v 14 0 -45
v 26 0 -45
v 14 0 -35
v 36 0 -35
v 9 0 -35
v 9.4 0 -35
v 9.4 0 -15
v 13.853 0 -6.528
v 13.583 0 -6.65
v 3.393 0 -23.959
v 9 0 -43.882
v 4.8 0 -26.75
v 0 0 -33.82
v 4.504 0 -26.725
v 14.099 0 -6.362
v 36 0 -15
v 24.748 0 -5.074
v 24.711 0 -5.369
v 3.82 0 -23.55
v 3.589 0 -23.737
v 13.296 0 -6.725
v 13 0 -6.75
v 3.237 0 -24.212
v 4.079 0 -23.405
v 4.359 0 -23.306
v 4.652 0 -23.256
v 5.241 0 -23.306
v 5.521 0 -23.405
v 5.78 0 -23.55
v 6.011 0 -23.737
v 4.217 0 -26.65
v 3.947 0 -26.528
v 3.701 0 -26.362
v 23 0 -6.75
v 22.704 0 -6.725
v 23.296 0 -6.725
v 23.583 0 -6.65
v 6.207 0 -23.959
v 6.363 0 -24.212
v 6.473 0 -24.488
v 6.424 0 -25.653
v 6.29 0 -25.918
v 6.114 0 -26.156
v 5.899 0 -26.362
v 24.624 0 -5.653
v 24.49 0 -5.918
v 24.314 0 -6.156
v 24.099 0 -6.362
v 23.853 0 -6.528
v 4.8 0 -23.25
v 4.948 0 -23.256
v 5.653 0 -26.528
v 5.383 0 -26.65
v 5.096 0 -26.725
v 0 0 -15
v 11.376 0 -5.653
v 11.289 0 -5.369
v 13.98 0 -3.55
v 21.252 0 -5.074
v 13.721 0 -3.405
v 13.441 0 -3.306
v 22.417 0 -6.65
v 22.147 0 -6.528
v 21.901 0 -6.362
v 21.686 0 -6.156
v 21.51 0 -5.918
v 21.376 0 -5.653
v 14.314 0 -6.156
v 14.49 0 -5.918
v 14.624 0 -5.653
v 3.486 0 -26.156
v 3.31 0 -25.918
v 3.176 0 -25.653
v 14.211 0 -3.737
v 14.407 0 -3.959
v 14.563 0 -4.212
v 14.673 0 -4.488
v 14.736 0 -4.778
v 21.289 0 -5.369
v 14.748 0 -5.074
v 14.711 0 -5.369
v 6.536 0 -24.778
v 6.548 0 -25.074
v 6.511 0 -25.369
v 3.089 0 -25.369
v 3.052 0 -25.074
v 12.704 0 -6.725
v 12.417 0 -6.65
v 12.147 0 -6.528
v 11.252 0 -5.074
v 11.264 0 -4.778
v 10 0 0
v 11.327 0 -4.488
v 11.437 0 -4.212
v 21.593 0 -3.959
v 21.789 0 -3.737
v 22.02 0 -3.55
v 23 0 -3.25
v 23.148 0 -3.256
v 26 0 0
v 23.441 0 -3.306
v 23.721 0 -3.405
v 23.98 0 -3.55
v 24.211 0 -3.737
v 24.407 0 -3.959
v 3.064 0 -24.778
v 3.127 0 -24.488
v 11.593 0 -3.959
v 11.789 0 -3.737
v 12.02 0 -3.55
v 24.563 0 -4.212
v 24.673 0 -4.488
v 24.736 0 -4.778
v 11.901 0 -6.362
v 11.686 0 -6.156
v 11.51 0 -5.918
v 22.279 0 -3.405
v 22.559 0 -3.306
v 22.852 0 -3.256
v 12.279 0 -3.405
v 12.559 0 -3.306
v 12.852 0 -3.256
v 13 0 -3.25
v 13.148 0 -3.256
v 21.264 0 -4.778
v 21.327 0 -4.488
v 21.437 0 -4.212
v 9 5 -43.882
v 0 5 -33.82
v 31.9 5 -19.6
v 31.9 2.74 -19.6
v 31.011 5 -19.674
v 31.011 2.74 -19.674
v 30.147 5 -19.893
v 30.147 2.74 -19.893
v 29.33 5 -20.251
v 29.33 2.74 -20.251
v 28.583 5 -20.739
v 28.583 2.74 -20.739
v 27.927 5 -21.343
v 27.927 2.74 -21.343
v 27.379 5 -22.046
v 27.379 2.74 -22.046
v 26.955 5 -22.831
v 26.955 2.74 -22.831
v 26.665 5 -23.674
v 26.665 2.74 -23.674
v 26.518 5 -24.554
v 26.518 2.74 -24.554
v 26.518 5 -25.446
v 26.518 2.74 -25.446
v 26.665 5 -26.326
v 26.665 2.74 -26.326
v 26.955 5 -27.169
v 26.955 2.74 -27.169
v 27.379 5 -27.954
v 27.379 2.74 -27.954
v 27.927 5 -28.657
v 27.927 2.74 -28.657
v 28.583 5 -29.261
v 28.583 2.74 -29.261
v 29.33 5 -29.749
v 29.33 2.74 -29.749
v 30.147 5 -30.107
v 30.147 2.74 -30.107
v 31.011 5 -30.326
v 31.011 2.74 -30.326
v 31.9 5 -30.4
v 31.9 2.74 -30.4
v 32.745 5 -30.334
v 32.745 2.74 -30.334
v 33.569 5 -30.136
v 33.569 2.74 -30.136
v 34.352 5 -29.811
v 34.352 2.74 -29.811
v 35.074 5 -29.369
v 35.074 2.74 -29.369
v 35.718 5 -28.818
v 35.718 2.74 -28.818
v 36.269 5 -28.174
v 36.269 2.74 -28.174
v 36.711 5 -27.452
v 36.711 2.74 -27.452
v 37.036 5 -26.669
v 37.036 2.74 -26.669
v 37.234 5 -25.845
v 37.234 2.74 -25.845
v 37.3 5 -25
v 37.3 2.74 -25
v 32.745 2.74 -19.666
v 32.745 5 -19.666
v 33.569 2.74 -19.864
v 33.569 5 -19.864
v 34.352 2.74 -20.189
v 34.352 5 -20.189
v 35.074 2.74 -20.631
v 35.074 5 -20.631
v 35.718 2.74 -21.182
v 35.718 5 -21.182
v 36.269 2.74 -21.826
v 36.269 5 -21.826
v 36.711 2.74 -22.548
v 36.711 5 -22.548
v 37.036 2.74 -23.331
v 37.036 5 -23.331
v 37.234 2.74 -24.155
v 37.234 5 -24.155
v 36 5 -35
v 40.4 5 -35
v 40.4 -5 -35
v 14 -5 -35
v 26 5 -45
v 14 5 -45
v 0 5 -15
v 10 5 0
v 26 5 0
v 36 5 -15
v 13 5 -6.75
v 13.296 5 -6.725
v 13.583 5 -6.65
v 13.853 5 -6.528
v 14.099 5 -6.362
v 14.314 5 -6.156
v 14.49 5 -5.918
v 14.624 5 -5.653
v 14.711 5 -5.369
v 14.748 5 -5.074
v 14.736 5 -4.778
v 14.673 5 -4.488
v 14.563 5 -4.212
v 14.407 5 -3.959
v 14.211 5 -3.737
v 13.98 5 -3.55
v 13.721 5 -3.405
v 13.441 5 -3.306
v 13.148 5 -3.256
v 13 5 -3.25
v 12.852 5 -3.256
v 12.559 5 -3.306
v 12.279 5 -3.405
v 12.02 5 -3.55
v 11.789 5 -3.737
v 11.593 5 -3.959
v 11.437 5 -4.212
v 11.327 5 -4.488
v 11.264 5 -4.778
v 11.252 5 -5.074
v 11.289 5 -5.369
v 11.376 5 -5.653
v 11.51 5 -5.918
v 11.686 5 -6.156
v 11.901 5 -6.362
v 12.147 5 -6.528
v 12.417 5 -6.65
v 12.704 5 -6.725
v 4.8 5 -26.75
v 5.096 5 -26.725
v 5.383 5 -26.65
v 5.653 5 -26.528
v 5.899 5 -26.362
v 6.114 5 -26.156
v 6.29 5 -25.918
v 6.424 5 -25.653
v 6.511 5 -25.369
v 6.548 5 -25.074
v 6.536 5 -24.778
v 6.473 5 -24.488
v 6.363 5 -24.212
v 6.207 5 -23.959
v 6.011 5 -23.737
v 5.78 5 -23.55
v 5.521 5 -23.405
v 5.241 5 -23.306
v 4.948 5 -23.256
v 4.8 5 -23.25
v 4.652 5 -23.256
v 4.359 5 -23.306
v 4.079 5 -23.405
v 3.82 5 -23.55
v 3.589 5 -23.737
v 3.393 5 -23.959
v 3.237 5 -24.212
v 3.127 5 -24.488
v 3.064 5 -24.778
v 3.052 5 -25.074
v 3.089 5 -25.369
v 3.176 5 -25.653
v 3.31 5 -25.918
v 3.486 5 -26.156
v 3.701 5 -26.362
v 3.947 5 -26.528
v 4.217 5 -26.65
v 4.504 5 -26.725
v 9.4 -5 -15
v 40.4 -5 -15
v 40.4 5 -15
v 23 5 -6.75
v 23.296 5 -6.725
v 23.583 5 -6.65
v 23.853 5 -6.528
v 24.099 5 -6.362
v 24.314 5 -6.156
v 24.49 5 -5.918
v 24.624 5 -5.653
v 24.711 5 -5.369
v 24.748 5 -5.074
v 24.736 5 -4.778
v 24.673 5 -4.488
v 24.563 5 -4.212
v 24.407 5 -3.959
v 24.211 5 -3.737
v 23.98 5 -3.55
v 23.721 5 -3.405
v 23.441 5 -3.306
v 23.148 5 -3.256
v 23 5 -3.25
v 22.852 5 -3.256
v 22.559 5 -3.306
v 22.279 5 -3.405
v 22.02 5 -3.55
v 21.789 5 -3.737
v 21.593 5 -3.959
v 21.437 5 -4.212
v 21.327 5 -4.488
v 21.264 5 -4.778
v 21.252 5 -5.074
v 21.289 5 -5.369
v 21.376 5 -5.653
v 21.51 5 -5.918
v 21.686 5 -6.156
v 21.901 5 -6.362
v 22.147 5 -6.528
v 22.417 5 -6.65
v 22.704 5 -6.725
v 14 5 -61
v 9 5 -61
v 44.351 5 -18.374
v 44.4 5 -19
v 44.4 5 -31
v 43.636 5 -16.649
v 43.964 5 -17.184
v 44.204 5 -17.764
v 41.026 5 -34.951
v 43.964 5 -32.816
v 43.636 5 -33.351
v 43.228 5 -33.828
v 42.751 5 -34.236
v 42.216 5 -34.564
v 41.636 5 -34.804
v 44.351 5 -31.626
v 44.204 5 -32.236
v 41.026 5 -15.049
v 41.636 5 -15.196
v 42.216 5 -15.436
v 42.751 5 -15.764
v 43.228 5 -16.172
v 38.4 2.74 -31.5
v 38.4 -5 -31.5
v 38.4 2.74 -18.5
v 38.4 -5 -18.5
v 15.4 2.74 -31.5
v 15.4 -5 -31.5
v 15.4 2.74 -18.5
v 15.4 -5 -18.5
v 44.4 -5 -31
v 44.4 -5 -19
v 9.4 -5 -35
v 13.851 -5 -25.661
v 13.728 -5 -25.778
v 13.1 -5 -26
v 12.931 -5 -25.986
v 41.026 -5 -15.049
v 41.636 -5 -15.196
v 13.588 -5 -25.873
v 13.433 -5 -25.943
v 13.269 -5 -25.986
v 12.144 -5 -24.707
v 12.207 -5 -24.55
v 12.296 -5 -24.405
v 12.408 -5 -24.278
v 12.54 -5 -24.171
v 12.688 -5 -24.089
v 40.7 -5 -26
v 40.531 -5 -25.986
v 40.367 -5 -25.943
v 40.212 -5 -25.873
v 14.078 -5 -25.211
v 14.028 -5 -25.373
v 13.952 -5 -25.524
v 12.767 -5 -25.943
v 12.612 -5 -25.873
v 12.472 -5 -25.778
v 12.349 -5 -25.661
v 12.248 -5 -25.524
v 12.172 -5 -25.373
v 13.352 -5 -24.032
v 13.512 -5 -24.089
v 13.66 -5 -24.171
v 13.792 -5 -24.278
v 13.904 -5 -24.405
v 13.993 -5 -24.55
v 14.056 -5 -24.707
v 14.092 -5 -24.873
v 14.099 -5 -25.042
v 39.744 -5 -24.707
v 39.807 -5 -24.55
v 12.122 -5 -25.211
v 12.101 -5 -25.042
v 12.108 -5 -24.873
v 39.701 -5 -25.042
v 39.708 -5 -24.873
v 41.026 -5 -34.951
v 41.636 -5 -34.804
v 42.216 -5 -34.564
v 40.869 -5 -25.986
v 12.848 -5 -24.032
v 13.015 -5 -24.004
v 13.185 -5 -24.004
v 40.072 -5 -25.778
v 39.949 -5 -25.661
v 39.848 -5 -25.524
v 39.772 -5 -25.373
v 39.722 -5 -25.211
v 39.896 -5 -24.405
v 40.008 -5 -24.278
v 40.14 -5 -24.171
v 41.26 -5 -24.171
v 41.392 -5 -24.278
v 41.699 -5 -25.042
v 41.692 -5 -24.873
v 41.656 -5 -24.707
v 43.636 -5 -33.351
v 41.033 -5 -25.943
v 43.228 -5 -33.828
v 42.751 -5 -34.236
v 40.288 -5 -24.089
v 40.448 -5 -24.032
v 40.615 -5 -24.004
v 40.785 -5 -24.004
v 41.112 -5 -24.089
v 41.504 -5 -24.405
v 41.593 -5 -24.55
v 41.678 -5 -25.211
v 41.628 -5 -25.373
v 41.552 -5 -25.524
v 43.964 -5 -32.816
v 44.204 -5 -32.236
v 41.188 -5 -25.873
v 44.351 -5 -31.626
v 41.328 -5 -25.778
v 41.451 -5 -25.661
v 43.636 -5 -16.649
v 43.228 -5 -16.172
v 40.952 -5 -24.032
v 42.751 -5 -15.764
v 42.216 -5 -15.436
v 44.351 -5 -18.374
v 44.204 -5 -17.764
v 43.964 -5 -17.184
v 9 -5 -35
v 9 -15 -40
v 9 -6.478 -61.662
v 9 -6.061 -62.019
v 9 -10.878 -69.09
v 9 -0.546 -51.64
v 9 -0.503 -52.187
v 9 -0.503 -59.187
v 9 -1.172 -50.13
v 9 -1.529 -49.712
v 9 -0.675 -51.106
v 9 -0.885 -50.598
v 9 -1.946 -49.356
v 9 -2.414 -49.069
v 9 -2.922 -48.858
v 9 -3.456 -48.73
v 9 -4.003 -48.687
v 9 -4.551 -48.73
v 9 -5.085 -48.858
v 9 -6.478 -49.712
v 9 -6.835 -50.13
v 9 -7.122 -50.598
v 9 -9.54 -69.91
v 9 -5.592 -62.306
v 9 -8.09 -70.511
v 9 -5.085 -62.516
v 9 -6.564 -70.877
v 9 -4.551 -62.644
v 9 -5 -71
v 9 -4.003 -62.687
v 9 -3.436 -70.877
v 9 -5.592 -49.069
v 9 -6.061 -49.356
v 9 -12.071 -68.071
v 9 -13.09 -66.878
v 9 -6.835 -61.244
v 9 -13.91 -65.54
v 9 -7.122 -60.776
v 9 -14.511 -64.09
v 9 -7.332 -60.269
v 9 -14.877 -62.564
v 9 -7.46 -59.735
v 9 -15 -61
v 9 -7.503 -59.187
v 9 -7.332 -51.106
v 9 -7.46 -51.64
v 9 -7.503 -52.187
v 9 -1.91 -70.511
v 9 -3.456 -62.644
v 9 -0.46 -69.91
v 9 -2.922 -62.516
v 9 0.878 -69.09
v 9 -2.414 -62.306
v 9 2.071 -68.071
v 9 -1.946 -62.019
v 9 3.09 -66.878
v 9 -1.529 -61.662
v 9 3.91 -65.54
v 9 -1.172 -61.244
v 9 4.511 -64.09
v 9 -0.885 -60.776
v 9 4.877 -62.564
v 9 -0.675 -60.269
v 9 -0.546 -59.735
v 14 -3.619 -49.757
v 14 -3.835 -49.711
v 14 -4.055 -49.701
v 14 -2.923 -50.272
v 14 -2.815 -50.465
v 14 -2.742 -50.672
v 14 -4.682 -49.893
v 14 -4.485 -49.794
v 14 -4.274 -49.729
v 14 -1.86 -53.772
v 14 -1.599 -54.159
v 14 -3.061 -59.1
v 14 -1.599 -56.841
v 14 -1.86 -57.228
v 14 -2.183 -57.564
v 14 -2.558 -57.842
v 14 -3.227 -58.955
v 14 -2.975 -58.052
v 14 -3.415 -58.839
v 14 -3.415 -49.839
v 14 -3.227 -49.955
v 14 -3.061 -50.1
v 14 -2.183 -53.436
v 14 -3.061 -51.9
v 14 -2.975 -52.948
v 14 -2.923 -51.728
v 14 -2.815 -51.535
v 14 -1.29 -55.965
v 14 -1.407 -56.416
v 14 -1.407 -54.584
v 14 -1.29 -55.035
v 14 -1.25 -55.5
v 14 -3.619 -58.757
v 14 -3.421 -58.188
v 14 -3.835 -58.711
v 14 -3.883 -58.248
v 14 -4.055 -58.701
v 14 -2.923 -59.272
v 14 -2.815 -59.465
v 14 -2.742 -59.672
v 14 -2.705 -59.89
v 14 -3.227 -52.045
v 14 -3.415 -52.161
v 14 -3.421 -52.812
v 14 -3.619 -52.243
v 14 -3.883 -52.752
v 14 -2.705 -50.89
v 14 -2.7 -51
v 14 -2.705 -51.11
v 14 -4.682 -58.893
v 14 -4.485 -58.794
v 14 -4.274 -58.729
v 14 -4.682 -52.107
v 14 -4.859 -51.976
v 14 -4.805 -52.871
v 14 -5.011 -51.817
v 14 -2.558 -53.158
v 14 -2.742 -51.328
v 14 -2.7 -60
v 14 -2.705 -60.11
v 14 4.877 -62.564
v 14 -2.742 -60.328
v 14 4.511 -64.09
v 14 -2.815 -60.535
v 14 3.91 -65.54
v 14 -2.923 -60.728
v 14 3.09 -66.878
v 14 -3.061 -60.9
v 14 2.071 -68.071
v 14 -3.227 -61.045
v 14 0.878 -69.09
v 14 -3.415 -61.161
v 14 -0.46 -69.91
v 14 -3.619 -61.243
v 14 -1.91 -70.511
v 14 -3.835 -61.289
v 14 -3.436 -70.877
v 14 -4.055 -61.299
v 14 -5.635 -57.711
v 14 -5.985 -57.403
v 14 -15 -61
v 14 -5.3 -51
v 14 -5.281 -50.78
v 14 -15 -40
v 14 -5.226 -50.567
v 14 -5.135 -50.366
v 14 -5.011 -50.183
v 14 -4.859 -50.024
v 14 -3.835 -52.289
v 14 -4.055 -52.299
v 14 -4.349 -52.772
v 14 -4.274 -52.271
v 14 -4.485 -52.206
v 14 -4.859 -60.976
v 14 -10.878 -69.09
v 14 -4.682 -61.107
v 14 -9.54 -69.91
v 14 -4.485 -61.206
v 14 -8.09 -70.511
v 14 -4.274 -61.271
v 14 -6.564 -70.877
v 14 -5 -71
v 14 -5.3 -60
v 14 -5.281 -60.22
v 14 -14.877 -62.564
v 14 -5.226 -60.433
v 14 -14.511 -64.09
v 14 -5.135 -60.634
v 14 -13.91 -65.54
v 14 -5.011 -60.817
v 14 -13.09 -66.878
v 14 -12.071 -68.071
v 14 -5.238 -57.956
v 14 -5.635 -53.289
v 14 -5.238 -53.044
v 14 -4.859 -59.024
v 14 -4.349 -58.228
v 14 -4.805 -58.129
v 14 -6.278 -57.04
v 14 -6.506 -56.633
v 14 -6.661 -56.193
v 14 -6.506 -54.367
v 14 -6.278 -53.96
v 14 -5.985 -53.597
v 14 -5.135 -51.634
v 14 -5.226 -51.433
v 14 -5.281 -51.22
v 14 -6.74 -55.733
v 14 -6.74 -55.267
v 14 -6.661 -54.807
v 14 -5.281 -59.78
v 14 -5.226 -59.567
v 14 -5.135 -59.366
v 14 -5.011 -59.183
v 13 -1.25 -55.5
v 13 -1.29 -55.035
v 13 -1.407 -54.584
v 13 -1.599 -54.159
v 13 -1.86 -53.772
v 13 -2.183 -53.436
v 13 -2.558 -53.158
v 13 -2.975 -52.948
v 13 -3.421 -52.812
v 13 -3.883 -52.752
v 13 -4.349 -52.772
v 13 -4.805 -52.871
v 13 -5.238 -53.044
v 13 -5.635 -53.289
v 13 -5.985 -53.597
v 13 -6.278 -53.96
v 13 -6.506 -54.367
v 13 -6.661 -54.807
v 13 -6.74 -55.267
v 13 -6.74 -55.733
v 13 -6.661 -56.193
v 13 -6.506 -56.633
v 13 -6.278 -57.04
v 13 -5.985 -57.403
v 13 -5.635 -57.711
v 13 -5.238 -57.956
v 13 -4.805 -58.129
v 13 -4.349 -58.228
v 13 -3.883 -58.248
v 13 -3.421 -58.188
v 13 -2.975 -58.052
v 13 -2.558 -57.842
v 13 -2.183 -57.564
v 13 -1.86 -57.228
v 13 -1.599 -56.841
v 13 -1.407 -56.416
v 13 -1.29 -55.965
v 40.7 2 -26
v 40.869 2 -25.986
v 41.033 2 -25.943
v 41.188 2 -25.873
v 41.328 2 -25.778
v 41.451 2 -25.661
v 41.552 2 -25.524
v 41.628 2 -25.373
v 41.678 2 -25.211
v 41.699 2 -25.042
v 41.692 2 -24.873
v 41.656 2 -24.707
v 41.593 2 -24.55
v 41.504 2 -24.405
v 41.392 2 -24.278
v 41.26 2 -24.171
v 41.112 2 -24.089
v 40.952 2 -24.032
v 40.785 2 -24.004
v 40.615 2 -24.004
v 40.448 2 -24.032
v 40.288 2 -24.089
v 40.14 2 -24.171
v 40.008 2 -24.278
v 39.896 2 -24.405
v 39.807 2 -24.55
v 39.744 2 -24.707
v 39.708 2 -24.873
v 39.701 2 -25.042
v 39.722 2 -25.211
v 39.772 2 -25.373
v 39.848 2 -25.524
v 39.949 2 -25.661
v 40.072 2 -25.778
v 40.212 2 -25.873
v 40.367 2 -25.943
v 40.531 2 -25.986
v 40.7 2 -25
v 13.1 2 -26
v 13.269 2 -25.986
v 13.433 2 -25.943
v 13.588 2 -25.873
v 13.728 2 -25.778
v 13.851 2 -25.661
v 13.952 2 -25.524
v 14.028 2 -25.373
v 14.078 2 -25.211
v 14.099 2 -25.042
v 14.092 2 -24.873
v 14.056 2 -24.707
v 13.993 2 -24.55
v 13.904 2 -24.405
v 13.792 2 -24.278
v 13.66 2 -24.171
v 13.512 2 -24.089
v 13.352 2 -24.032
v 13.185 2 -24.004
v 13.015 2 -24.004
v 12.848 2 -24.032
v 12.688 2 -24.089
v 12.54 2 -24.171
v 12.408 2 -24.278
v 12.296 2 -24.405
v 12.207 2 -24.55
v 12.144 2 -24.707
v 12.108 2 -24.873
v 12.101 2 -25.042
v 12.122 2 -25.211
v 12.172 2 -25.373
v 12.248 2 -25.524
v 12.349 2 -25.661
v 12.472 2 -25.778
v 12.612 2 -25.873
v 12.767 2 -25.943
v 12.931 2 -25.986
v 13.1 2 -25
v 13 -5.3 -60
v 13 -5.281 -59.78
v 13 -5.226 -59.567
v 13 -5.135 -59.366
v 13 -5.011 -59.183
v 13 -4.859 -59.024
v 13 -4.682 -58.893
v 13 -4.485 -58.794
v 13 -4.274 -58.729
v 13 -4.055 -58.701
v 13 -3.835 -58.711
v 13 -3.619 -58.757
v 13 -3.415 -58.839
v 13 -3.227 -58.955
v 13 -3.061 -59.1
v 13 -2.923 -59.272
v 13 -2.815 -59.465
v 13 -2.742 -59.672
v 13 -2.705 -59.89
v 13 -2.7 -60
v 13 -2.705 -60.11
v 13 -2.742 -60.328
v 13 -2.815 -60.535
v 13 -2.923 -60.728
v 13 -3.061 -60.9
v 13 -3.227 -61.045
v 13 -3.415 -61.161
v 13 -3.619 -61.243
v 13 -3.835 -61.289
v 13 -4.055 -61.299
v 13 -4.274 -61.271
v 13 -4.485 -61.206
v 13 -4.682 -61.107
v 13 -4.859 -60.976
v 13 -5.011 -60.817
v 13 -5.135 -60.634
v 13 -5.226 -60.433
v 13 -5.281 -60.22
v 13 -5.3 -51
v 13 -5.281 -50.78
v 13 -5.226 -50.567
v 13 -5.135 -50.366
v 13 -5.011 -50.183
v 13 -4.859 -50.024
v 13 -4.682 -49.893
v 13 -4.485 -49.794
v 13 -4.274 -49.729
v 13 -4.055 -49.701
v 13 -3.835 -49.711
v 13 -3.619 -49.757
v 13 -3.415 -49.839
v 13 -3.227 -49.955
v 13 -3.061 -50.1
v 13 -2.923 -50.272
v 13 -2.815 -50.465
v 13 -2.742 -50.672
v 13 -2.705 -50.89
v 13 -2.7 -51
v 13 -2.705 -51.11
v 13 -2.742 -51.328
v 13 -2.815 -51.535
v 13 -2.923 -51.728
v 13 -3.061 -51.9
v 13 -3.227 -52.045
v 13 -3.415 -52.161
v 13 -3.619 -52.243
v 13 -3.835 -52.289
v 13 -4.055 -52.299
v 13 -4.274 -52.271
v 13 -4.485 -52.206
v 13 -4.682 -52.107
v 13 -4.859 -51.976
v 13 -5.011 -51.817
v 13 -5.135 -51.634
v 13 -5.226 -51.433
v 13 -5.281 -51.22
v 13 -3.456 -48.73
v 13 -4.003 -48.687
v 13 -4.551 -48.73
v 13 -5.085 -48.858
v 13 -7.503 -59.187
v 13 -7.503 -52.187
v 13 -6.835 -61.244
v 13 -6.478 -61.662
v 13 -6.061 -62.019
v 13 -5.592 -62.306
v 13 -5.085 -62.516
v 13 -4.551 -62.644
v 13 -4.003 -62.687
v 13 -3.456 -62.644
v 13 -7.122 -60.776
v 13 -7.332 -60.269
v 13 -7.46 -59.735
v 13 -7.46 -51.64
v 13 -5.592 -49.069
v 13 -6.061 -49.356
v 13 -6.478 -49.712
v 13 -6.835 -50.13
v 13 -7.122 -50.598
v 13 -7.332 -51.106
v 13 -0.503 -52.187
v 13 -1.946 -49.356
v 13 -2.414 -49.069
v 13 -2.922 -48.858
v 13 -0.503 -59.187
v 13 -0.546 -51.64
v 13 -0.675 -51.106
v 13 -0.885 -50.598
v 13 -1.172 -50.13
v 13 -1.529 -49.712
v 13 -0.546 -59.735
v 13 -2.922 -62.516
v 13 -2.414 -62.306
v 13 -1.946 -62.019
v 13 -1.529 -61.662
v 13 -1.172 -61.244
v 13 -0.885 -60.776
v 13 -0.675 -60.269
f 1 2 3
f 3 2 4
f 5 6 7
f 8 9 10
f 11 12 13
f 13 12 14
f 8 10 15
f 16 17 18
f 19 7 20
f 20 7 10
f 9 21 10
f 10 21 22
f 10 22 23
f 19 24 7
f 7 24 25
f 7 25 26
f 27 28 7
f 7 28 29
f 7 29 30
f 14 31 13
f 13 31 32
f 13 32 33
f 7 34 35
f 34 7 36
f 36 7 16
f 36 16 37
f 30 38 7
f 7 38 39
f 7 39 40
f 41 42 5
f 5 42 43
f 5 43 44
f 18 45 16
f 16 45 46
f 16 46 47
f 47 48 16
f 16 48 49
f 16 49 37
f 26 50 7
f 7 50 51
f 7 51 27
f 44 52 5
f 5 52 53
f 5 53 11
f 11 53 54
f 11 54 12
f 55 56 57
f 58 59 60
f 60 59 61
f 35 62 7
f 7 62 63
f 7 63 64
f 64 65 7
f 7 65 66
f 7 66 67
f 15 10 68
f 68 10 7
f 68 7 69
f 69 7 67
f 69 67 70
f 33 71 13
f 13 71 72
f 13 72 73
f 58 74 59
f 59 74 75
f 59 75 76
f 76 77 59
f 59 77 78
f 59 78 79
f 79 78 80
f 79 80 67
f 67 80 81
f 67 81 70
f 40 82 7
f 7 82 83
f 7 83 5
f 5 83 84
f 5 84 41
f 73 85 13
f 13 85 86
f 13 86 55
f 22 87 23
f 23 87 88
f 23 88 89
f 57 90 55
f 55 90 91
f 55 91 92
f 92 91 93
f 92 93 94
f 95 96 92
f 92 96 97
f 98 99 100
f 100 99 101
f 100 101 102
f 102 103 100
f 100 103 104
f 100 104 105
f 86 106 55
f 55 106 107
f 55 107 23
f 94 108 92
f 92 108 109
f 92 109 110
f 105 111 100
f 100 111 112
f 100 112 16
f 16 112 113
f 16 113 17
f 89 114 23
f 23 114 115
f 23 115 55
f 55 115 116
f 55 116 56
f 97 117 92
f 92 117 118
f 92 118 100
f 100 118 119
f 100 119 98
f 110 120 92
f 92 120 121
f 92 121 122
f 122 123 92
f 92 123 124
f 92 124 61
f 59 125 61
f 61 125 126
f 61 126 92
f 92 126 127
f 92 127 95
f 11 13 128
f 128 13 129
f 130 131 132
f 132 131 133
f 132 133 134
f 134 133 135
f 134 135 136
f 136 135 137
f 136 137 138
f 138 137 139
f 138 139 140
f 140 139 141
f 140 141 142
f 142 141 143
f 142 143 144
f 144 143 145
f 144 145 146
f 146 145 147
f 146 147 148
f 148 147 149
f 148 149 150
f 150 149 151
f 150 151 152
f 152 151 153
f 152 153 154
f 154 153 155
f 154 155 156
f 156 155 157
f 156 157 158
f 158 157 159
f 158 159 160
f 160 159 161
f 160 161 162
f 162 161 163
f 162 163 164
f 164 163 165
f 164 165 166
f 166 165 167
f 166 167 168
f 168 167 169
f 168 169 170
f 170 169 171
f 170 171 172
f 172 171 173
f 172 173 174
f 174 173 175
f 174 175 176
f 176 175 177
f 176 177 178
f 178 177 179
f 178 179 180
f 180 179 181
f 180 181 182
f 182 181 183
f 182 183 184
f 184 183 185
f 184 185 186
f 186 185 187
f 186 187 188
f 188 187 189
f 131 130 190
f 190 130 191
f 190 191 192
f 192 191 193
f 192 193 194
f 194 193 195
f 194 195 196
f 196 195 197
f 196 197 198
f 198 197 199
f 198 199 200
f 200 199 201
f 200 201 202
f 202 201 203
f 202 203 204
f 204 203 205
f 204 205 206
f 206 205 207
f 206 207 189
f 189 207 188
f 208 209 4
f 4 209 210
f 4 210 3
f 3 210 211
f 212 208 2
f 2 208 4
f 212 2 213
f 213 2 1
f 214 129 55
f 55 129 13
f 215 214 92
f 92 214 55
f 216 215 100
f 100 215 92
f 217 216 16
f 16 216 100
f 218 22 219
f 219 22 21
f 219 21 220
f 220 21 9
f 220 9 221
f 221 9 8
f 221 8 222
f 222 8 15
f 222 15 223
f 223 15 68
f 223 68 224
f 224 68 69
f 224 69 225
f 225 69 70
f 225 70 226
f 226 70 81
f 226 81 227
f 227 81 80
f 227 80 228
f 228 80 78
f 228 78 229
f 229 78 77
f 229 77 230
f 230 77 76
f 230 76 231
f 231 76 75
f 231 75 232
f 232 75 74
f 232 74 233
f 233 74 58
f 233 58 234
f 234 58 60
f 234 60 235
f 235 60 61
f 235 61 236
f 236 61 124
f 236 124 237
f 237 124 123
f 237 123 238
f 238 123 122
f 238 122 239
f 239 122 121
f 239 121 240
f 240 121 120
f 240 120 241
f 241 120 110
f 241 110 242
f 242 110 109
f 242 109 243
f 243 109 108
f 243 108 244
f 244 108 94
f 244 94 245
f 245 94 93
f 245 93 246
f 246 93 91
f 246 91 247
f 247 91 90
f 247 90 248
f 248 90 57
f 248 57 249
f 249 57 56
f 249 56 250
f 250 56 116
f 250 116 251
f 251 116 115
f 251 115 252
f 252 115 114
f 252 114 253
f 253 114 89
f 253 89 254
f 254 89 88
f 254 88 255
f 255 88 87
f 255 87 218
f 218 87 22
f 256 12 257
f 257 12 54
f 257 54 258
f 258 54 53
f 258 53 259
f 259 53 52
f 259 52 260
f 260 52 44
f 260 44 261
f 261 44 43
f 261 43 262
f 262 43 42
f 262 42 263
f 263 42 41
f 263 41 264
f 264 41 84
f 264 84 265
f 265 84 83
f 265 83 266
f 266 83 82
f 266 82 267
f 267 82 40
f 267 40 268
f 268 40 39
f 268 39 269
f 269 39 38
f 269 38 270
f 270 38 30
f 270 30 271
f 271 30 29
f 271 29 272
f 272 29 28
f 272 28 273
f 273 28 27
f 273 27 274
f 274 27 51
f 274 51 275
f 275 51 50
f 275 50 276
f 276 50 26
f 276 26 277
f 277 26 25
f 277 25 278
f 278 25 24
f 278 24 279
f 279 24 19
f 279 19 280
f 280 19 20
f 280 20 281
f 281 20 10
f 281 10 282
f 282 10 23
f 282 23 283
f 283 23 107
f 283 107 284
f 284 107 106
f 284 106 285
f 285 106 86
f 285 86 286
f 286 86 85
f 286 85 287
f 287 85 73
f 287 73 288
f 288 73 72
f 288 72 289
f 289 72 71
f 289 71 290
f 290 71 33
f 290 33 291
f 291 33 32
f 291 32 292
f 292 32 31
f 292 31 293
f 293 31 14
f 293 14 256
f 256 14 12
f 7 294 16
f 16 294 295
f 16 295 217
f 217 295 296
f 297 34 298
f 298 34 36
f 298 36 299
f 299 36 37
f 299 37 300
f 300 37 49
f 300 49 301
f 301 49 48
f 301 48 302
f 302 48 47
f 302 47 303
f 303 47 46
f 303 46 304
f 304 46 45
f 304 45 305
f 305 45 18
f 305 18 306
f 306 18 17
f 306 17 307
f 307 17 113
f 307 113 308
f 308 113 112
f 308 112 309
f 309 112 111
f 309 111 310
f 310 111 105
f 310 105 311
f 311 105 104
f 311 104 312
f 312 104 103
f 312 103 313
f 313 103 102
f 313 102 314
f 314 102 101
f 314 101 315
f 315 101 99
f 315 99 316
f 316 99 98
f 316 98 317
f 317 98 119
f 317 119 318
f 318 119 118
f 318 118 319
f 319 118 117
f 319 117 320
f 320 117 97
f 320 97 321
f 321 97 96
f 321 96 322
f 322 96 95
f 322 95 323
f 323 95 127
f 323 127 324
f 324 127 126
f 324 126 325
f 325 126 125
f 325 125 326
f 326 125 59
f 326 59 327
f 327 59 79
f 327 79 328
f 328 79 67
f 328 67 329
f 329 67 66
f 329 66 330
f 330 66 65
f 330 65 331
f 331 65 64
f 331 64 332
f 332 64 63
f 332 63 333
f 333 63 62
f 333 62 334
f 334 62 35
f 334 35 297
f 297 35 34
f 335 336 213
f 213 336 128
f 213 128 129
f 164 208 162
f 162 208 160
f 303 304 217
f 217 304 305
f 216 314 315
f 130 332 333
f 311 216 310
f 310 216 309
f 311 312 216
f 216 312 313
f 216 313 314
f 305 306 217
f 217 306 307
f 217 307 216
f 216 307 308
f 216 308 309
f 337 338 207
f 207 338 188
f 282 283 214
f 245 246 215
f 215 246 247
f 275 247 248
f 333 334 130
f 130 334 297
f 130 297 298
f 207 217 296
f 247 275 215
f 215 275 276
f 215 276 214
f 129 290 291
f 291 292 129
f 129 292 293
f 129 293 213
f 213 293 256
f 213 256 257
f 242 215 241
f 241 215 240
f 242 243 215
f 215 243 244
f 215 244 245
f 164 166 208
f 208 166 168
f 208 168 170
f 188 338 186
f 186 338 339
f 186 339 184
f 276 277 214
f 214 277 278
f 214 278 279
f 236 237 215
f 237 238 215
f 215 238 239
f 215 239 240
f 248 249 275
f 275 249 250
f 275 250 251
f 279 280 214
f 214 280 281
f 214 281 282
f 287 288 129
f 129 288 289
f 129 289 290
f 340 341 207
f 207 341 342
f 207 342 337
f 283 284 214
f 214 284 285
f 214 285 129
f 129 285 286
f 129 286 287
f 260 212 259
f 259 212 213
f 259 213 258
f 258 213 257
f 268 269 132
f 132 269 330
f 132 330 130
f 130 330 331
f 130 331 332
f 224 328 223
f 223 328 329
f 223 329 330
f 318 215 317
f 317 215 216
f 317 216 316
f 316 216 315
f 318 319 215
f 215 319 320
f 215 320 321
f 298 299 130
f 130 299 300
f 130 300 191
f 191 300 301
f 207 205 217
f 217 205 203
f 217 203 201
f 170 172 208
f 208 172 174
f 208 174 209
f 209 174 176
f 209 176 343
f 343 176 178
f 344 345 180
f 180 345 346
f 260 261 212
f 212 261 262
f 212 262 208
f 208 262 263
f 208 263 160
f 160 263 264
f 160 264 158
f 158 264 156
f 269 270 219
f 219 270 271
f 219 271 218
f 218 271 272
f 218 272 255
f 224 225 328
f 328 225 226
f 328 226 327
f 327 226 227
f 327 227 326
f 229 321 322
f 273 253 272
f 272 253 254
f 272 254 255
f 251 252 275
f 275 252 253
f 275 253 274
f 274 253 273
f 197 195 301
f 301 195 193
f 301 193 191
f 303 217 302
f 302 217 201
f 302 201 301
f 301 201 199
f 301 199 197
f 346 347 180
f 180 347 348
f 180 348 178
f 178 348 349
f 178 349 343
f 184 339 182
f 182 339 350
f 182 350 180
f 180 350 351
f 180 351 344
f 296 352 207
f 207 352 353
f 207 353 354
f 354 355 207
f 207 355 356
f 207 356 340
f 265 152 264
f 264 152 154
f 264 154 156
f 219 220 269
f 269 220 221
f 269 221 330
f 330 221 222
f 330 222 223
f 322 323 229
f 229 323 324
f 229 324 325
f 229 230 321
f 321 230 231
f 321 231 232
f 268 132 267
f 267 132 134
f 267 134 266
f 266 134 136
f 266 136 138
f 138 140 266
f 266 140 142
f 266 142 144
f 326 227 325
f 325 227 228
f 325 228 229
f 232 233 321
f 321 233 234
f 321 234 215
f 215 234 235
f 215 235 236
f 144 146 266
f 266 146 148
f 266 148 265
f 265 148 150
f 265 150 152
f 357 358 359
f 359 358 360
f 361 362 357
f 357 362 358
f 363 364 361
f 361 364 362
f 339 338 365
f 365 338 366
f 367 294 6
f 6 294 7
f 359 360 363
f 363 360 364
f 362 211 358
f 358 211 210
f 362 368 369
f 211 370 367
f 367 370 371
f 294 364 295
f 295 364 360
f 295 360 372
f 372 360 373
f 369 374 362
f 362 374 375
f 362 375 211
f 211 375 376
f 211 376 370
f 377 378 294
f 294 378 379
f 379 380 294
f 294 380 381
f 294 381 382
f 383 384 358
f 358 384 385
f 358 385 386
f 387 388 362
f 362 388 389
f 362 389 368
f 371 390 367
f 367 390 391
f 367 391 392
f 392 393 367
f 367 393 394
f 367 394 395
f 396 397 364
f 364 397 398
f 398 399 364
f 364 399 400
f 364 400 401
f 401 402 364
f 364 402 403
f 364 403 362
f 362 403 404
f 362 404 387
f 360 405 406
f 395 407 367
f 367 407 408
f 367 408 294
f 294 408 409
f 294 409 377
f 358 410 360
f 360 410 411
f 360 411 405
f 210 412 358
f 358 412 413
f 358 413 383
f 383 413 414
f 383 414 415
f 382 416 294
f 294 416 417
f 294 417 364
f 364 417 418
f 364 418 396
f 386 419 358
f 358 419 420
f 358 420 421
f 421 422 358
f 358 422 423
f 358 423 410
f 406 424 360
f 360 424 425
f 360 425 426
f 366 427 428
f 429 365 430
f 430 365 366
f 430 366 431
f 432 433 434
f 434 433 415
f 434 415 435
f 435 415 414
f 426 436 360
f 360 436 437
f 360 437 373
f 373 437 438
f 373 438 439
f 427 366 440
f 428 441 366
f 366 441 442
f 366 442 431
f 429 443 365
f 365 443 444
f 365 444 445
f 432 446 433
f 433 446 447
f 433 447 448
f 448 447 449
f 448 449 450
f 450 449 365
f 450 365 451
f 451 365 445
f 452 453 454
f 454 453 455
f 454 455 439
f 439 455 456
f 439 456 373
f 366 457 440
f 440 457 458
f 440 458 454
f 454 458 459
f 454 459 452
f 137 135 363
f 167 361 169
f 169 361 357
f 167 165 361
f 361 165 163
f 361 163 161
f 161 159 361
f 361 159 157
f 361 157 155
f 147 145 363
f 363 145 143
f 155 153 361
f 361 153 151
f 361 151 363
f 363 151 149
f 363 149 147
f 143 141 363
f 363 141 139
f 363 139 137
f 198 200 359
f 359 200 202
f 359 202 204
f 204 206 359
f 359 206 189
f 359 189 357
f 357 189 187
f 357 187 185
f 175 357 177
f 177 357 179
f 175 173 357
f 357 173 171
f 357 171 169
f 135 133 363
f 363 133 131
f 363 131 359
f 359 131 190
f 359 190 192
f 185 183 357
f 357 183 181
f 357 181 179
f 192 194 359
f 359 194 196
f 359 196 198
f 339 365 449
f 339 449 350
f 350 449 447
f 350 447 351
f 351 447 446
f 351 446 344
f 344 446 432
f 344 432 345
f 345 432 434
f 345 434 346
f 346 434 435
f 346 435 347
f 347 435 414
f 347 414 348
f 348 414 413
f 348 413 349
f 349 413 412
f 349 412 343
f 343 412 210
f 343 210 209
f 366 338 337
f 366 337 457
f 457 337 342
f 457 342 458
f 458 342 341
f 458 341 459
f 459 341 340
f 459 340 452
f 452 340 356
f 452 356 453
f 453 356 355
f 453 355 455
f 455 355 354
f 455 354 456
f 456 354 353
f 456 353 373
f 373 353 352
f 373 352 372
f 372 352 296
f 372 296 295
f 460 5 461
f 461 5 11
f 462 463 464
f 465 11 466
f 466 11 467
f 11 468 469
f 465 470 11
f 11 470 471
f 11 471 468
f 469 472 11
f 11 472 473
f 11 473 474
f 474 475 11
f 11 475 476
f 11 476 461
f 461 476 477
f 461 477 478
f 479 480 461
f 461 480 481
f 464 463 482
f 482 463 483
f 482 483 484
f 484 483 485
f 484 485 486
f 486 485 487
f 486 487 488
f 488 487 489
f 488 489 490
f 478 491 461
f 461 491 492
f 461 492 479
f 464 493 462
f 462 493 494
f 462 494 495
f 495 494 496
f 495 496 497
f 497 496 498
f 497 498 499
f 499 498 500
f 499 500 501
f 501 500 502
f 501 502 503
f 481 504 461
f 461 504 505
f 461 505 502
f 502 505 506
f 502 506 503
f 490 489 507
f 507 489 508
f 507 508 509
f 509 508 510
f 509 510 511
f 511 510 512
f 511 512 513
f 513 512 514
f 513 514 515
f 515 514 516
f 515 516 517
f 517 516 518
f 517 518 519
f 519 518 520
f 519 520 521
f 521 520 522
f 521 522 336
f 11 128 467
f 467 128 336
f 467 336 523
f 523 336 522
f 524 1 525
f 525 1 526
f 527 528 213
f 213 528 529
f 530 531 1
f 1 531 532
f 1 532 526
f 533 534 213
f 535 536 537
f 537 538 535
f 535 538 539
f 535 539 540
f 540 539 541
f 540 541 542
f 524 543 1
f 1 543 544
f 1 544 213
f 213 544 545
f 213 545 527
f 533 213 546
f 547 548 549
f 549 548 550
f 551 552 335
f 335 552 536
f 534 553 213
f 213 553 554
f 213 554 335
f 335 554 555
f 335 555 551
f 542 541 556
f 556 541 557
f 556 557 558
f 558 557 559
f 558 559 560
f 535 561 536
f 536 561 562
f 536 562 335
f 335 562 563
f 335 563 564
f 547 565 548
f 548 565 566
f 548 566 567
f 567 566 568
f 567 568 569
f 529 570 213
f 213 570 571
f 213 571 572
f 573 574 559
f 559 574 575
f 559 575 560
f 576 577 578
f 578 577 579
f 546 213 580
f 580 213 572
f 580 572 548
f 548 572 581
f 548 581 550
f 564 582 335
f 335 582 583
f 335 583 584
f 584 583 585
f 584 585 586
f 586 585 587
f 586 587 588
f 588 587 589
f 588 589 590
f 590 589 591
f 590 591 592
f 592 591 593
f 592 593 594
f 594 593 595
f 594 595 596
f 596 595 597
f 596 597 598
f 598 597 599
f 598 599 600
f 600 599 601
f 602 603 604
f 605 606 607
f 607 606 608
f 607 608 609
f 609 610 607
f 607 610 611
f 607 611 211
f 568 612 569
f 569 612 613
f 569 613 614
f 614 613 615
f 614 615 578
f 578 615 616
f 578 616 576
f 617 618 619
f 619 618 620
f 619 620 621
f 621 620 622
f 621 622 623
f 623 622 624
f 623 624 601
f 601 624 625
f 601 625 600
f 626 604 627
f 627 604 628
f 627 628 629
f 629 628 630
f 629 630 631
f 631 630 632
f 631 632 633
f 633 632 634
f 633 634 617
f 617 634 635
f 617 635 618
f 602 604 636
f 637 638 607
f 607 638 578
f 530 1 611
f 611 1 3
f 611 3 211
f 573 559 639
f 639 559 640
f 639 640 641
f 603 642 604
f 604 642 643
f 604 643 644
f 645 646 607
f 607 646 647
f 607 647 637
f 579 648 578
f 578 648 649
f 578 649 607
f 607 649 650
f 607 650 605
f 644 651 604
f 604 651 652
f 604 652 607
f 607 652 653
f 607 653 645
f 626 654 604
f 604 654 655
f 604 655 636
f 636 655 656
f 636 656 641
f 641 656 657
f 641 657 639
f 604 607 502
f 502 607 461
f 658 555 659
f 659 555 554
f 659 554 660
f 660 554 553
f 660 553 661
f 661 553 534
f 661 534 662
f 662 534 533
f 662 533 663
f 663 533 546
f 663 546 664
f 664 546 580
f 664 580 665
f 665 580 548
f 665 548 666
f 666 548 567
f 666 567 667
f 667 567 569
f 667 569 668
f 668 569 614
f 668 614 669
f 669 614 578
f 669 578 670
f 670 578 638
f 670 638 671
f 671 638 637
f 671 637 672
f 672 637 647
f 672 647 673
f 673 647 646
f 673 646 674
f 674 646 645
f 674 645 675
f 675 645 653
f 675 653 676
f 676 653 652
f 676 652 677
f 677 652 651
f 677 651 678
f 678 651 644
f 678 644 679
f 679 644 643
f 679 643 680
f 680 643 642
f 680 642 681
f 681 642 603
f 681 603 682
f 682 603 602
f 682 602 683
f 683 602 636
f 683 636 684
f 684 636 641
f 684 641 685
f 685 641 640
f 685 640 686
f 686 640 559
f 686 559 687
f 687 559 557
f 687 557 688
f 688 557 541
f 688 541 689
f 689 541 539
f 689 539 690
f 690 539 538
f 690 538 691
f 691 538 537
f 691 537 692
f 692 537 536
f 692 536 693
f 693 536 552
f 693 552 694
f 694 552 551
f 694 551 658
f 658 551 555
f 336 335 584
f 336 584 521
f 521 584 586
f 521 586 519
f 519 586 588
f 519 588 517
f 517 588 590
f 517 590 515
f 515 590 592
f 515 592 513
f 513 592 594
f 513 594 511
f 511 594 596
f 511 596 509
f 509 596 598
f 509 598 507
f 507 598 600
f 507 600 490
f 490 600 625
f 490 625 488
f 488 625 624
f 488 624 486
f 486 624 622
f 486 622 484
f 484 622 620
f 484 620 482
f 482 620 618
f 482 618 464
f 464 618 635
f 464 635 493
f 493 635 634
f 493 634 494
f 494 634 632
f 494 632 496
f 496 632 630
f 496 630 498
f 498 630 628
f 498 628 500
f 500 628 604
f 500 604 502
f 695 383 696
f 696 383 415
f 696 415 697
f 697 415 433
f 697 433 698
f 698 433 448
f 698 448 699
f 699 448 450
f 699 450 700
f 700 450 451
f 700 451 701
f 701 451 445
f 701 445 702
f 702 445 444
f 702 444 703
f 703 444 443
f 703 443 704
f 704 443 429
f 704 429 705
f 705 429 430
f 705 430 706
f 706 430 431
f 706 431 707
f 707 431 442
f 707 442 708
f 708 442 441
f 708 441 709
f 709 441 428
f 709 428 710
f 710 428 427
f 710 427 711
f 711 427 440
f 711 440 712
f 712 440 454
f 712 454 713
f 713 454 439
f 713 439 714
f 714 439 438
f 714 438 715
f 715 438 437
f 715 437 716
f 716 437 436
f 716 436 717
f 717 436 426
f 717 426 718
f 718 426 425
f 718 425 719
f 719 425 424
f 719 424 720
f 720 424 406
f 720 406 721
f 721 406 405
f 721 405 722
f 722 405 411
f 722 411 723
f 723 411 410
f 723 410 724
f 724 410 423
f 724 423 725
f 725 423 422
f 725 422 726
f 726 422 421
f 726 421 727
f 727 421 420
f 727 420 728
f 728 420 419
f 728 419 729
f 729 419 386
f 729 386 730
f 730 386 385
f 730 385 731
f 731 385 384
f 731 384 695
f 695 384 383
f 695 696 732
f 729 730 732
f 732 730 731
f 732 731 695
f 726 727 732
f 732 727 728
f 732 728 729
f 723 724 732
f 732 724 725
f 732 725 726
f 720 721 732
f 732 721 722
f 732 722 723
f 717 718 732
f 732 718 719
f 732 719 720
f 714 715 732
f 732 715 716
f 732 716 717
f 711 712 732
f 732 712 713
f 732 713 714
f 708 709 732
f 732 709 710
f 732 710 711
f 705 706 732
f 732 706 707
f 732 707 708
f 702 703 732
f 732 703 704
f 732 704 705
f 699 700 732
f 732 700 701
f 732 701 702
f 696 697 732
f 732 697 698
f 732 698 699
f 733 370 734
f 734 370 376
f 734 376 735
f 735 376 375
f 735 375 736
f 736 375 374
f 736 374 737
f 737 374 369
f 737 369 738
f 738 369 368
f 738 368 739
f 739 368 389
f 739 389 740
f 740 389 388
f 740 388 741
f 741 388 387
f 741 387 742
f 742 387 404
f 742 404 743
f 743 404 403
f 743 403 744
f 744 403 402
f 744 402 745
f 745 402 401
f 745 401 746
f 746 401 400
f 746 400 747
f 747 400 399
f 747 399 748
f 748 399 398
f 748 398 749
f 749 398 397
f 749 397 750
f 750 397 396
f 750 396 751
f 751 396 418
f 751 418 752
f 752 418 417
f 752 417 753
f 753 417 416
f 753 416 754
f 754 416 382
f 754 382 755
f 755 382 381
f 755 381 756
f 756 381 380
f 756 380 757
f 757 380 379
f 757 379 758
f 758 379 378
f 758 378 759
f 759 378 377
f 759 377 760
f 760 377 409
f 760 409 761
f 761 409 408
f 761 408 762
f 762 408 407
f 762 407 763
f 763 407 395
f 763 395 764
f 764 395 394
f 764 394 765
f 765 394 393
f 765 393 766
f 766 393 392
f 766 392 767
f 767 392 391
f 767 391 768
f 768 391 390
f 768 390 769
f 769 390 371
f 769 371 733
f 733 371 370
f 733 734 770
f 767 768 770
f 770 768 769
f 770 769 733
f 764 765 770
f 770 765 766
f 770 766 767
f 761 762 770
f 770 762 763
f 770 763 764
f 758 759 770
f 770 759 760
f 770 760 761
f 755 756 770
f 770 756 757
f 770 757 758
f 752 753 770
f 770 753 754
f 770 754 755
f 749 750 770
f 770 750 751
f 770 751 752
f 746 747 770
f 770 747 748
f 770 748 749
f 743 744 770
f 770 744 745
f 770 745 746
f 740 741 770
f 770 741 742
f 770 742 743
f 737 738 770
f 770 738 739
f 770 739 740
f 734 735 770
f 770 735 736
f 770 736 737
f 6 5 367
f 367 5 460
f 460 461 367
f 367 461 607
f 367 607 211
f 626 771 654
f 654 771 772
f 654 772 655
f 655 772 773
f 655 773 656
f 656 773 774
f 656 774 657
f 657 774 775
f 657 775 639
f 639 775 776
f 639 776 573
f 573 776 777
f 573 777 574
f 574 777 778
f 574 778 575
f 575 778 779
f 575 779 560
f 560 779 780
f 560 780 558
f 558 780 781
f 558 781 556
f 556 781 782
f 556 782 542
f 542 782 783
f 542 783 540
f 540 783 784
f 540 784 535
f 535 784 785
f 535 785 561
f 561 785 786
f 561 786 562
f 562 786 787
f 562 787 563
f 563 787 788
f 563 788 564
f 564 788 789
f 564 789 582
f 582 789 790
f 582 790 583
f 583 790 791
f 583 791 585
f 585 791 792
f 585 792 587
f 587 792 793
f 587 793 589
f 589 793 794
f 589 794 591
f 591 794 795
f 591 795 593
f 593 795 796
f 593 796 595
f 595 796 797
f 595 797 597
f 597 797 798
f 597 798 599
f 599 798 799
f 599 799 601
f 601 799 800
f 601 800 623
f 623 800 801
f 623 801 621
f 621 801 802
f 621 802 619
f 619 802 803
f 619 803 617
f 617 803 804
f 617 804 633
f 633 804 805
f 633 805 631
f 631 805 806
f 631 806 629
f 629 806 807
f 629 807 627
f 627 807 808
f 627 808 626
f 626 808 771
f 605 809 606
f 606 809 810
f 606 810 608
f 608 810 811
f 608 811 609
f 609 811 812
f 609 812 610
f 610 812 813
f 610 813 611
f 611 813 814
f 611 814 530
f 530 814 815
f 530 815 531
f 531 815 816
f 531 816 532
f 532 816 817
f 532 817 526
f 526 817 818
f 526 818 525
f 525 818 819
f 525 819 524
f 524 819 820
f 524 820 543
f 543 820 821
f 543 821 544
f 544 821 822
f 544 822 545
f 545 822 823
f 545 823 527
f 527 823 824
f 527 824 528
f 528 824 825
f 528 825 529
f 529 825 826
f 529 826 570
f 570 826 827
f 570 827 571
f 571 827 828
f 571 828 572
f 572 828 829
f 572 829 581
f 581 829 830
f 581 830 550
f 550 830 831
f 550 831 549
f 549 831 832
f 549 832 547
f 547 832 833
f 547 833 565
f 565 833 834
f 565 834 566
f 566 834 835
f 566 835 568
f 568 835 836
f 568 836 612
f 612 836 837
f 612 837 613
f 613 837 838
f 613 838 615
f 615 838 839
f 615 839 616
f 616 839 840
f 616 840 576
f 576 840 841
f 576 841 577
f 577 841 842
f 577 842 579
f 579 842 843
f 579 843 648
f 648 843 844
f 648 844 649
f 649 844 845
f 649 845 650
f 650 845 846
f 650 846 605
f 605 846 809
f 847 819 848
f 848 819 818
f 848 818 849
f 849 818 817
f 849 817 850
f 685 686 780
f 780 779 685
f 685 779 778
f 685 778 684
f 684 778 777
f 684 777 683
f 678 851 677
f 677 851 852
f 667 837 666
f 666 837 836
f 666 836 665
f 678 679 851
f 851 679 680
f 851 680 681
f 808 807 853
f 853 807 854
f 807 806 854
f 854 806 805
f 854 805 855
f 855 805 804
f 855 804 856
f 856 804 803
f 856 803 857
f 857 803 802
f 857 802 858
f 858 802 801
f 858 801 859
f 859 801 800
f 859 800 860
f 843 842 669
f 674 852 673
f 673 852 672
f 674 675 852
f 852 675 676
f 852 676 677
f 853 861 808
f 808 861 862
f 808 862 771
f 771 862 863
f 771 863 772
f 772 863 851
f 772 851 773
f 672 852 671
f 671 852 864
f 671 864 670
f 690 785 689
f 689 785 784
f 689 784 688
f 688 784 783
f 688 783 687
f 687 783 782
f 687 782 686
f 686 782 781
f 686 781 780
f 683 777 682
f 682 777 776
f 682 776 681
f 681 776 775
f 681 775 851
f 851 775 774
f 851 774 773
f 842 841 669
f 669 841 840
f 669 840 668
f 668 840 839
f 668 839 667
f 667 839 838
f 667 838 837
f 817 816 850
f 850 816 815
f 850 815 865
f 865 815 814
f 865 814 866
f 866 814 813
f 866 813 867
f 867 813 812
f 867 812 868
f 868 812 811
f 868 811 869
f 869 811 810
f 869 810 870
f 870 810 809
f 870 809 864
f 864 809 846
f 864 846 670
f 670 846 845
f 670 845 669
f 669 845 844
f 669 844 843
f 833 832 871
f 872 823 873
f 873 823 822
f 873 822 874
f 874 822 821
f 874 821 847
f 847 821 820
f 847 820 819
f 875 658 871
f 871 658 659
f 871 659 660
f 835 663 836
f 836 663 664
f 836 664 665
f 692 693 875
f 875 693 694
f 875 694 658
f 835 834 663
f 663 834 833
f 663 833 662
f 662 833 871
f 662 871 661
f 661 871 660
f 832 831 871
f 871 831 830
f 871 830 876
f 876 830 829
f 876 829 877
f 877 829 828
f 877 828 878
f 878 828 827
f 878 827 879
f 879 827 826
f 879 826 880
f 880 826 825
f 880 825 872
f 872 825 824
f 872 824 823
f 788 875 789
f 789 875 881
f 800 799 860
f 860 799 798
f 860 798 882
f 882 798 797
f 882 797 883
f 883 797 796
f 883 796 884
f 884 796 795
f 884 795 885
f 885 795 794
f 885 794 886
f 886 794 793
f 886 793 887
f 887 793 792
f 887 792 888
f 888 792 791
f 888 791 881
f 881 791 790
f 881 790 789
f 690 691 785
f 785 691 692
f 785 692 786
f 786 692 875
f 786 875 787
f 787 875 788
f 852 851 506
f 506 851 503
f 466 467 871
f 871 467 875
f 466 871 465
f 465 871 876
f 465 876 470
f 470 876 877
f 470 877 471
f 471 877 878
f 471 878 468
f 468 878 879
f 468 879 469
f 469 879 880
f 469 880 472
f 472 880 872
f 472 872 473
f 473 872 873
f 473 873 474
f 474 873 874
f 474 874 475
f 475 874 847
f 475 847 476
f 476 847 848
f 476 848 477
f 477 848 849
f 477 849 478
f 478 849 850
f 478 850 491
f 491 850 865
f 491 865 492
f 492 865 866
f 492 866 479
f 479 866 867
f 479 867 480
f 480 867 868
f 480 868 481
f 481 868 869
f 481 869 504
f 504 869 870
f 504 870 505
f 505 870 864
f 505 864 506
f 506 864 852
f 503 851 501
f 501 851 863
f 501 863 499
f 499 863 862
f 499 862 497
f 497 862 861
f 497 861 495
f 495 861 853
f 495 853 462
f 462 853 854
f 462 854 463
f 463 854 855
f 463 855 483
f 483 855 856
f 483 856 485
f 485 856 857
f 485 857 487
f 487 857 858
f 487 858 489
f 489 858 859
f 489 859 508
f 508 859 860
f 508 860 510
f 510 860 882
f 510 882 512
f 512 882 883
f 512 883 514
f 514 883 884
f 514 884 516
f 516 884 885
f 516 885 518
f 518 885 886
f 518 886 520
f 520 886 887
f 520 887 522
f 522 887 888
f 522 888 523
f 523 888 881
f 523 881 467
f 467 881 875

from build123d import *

# Parameters (mm, degrees)
SKETCH1_R                = 1.75
SKETCH1_W                = 7.2
SKETCH1_H                = 5.4
BOSS_EXTRUDE1_DEPTH      = 5
FILLET5_RADIUS           = 10
FILLET5_LENGTH           = 5
FILLET2_R                = 5.4
FILLET6_R                = 5.4
SKETCH3_W                = 35
SKETCH3_H                = 20
SKETCH3_W_2              = 23
SKETCH3_H_2              = 13
BOSS_EXTRUDE4_DEPTH      = 5
SKETCH5_W                = 23
SKETCH5_H                = 13
CUT_EXTRUDE1_DEPTH       = 2.74
CUT_EXTRUDE2_DEPTH       = 76.166481892
FILLET9_R                = 4
BOSS_EXTRUDE7_DEPTH      = 26
BOSS_EXTRUDE7_DEPTH_BACK = 5
SKETCH7_W                = 5
SKETCH7_H                = 20
SKETCH8_R                = 2.75
CUT_EXTRUDE3_DEPTH       = 79.677569866
FILLET10_R               = 10
SKETCH9_R                = 1
CUT_EXTRUDE4_DEPTH       = 7
BOSS_EXTRUDE8_DEPTH      = 5
SKETCH11_R               = 1.3
CUT_EXTRUDE5_DEPTH       = 5
SKETCH12_W               = 14
SKETCH12_H               = 7
CUT_EXTRUDE6_DEPTH       = 4
FILLET11_R               = 3.5


with BuildPart() as part:
    # Sketch1 → Boss-Extrude1 (new body)
    # profile 1 of 4: a face of its own
    with BuildSketch(Plane(origin=(0, 0, 0), x_dir=(1, 0, 0), z_dir=(0, 1, 0))):
        with BuildLine():
            Line((3.05, 25), (0, 25))
            Line((0, 25), (0, 15))
            Line((0, 15), (10, 0))
            Line((10, 0), (26, 0))
            Line((26, 0), (36, 15))
            Line((36, 15), (60, 15))
            Line((60, 15), (60, 25))
            Line((60, 25), (44.5, 25))
            Line((44.5, 25), (44.5, 19.6))
            Line((44.5, 19.6), (37.3, 19.6))
            Line((37.3, 19.6), (26.5, 19.6))
            Line((26.5, 19.6), (26.5, 25))
            Line((26.5, 25), (6.55, 25))
            ThreePointArc((6.55, 25), (4.8, 23.25), (3.05, 25))
        make_face()
        with Locations(Location((13, 5, 0), (0, 0, 270))):
            Circle(SKETCH1_R, mode=Mode.SUBTRACT)
        with Locations(Location((23, 5, 0), (0, 0, 270))):
            Circle(SKETCH1_R, mode=Mode.SUBTRACT)
    # profile 2 of 4: a face of its own
    with BuildSketch(Plane(origin=(0, 0, 0), x_dir=(1, 0, 0), z_dir=(0, 1, 0))):
        with BuildLine():
            Line((10, 45), (0, 33.819660113))
            Line((0, 33.819660113), (0, 25))
            Line((0, 25), (3.05, 25))
            ThreePointArc((3.05, 25), (4.8, 26.75), (6.55, 25))
            Line((6.55, 25), (26.5, 25))
            Line((26.5, 25), (26.5, 30.4))
            Line((26.5, 30.4), (37.3, 30.4))
            Line((37.3, 30.4), (44.5, 30.4))
            Line((44.5, 30.4), (44.5, 25))
            Line((44.5, 25), (60, 25))
            Line((60, 25), (60, 35))
            Line((60, 35), (36, 35))
            Line((36, 35), (26, 45))
            Line((26, 45), (10, 45))
        make_face()
    # profile 3 of 4: a face of its own
    with BuildSketch(Plane(origin=(0, 0, 0), x_dir=(1, 0, 0), z_dir=(0, 1, 0))):
        with Locations((40.9, 27.7)):
            Rectangle(SKETCH1_W, SKETCH1_H)
    # profile 4 of 4: a face of its own
    with BuildSketch(Plane(origin=(0, 0, 0), x_dir=(1, 0, 0), z_dir=(0, 1, 0))):
        with Locations((40.9, 22.3)):
            Rectangle(SKETCH1_W, SKETCH1_H)
    extrude(amount=BOSS_EXTRUDE1_DEPTH)

    # Fillet5: full round fillet: the end face becomes a half cylinder, R = half its width
    fillet5_face = Plane((60, 2.5, -25), x_dir=(0, -1, 0), z_dir=(1, 0, 0))  # on the end face: x along it, z out of the body
    fillet5_slab = fillet5_face.offset(-FILLET5_RADIUS / 2) * Box(FILLET5_LENGTH, 2 * FILLET5_RADIUS, FILLET5_RADIUS, mode=Mode.PRIVATE)  # the body's end, R deep
    fillet5_round = Plane((50, 2.5, -25), x_dir=(1, 0, 0), z_dir=(0, -1, 0)) * Cylinder(FILLET5_RADIUS, FILLET5_LENGTH, mode=Mode.PRIVATE)  # its axis R under the face
    add(fillet5_slab - fillet5_round, mode=Mode.SUBTRACT)

    # Fillet2
    fillet2_edges = [part.edges().sort_by_distance(p)[0] for p in [
        (26.5, 2.5, -30.4),
        (26.5, 2.5, -19.6),
    ]]
    fillet(fillet2_edges, radius=FILLET2_R - 0.0001)  # a hair under: the kernel refuses the full size

    # Fillet6
    fillet6_edges = [part.edges().sort_by_distance(p)[0] for p in [
        (37.3, 2.5, -19.6),
        (37.3, 2.5, -30.4),
    ]]
    fillet(fillet6_edges, radius=FILLET6_R - 0.0001)  # a hair under: the kernel refuses the full size

    # Sketch3 → Boss-Extrude4 (add)
    with BuildSketch(Plane.XZ):
        with Locations((26.9, -25)):
            Rectangle(SKETCH3_W, SKETCH3_H)
        with Locations((26.9, -25)):
            Rectangle(SKETCH3_W_2, SKETCH3_H_2, mode=Mode.SUBTRACT)
    extrude(amount=BOSS_EXTRUDE4_DEPTH)

    # Sketch5 → Cut-Extrude1 (cut)
    with BuildSketch(Plane.XZ):
        with Locations((26.9, -25)):
            Rectangle(SKETCH5_W, SKETCH5_H)
    extrude(amount=-CUT_EXTRUDE1_DEPTH, mode=Mode.SUBTRACT)

    # Sketch6 → Cut-Extrude2 (cut, through all)
    with BuildSketch(Plane.XZ):
        with BuildLine():
            Line((44.4, -35), (50, -35))
            ThreePointArc((50, -35), (60, -25), (50, -15))
            Line((50, -15), (44.4, -15))
            Line((44.4, -15), (44.4, -35))
        make_face()
    extrude(amount=-CUT_EXTRUDE2_DEPTH, mode=Mode.SUBTRACT)

    # Fillet9
    fillet9_edges = [part.edges().sort_by_distance(p)[0] for p in [
        (44.4, 0, -35),
        (44.4, 0, -15),
    ]]
    fillet(fillet9_edges, radius=FILLET9_R)

    # Sketch7 → Boss-Extrude7 (add, two sides: drawn at the far end of the back side and taken through both)
    with BuildSketch(Plane(origin=(0, 0, -45), x_dir=(-1, 0, 0), z_dir=(0, 0, -1)).offset(-BOSS_EXTRUDE7_DEPTH_BACK)):
        with Locations((-11.5, -5)):
            Rectangle(SKETCH7_W, SKETCH7_H)
    extrude(amount=BOSS_EXTRUDE7_DEPTH + BOSS_EXTRUDE7_DEPTH_BACK)

    # Sketch8 → Cut-Extrude3 (cut, through all)
    with BuildSketch(Plane(origin=(14, 0, 0), x_dir=(0, 0, -1), z_dir=(1, 0, 0))):
        with Locations(Location((55.5, -4, 0), (0, 0, 90))):
            Circle(SKETCH8_R)
    extrude(amount=-CUT_EXTRUDE3_DEPTH, mode=Mode.SUBTRACT)

    # Fillet10
    fillet10_edges = [part.edges().sort_by_distance(p)[0] for p in [
        (11.5, -15, -71),
        (11.5, 5, -71),
    ]]
    fillet(fillet10_edges, radius=FILLET10_R - 0.0001)  # a hair under: the kernel refuses the full size

    # Sketch9 → Cut-Extrude4 (cut)
    with BuildSketch(Plane.XZ.offset(5)):
        with Locations(Location((13.1, -25, 0), (0, 0, 270))):
            Circle(SKETCH9_R)
        with Locations(Location((40.7, -25, 0), (0, 0, 270))):
            Circle(SKETCH9_R)
    extrude(amount=-CUT_EXTRUDE4_DEPTH, mode=Mode.SUBTRACT)

    # Sketch10 → Boss-Extrude8 (add)
    with BuildSketch(Plane.ZY.offset(-9)):
        Polygon((-40, 0), (-40, -15), (-35, -5), (-35, 0), align=None)
    extrude(amount=-BOSS_EXTRUDE8_DEPTH)

    # Sketch11 → Cut-Extrude5 (cut)
    with BuildSketch(Plane.ZY.offset(-9)):
        with Locations(Location((-51, -4, 0), (0, 0, 270))):
            Circle(SKETCH11_R)
        with Locations(Location((-60, -4, 0), (0, 0, 270))):
            Circle(SKETCH11_R)
    extrude(amount=-CUT_EXTRUDE5_DEPTH, mode=Mode.SUBTRACT)

    # Sketch12 → Cut-Extrude6 (cut)
    with BuildSketch(Plane.ZY.offset(-9)):
        with Locations((-55.6871773, -4.003401726)):
            Rectangle(SKETCH12_W, SKETCH12_H)
    extrude(amount=-CUT_EXTRUDE6_DEPTH, mode=Mode.SUBTRACT)

    # Fillet11
    fillet11_edges = [part.edges().sort_by_distance(p)[0] for p in [
        (11, -7.503401726, -48.6871773),
        (11, -0.503401726, -48.6871773),
        (11, -0.503401726, -62.6871773),
        (11, -7.503401726, -62.6871773),
    ]]
    fillet(fillet11_edges, radius=FILLET11_R - 0.0001)  # a hair under: the kernel refuses the full size


solid = part.part
